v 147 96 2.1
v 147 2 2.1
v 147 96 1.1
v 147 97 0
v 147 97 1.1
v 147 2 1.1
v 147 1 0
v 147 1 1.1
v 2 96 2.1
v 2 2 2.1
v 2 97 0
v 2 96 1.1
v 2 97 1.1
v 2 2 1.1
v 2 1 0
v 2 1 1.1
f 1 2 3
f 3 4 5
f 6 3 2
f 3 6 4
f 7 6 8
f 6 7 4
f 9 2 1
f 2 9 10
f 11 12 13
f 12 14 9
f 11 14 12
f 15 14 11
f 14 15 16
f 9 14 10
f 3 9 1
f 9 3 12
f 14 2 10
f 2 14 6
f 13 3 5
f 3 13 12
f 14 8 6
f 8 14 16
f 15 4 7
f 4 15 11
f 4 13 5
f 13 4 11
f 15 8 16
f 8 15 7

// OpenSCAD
// +++ CONFIG +++
X_CARD = 145;
Y_CARD = 98; 
Z_CARD = 25;

R_FINGERHELP =10;

PW_FLOOR = 2; // PoWer
PW_WALL = 1.5;
X_LEN_WALL = len_wall(15); // LENght
Y_LEN_WALL = len_wall(7);
function len_wall(len_wall) = len_wall+PW_WALL;



// +++ MAKE +++

// Deckel
translate([ 2 , 2 , 1 ]) cube([ X_CARD , Y_CARD-4 , 1.1 ]);
translate([ 2 , 1 , 0 ]) cube([ X_CARD , Y_CARD-2 , 1.1 ]);
